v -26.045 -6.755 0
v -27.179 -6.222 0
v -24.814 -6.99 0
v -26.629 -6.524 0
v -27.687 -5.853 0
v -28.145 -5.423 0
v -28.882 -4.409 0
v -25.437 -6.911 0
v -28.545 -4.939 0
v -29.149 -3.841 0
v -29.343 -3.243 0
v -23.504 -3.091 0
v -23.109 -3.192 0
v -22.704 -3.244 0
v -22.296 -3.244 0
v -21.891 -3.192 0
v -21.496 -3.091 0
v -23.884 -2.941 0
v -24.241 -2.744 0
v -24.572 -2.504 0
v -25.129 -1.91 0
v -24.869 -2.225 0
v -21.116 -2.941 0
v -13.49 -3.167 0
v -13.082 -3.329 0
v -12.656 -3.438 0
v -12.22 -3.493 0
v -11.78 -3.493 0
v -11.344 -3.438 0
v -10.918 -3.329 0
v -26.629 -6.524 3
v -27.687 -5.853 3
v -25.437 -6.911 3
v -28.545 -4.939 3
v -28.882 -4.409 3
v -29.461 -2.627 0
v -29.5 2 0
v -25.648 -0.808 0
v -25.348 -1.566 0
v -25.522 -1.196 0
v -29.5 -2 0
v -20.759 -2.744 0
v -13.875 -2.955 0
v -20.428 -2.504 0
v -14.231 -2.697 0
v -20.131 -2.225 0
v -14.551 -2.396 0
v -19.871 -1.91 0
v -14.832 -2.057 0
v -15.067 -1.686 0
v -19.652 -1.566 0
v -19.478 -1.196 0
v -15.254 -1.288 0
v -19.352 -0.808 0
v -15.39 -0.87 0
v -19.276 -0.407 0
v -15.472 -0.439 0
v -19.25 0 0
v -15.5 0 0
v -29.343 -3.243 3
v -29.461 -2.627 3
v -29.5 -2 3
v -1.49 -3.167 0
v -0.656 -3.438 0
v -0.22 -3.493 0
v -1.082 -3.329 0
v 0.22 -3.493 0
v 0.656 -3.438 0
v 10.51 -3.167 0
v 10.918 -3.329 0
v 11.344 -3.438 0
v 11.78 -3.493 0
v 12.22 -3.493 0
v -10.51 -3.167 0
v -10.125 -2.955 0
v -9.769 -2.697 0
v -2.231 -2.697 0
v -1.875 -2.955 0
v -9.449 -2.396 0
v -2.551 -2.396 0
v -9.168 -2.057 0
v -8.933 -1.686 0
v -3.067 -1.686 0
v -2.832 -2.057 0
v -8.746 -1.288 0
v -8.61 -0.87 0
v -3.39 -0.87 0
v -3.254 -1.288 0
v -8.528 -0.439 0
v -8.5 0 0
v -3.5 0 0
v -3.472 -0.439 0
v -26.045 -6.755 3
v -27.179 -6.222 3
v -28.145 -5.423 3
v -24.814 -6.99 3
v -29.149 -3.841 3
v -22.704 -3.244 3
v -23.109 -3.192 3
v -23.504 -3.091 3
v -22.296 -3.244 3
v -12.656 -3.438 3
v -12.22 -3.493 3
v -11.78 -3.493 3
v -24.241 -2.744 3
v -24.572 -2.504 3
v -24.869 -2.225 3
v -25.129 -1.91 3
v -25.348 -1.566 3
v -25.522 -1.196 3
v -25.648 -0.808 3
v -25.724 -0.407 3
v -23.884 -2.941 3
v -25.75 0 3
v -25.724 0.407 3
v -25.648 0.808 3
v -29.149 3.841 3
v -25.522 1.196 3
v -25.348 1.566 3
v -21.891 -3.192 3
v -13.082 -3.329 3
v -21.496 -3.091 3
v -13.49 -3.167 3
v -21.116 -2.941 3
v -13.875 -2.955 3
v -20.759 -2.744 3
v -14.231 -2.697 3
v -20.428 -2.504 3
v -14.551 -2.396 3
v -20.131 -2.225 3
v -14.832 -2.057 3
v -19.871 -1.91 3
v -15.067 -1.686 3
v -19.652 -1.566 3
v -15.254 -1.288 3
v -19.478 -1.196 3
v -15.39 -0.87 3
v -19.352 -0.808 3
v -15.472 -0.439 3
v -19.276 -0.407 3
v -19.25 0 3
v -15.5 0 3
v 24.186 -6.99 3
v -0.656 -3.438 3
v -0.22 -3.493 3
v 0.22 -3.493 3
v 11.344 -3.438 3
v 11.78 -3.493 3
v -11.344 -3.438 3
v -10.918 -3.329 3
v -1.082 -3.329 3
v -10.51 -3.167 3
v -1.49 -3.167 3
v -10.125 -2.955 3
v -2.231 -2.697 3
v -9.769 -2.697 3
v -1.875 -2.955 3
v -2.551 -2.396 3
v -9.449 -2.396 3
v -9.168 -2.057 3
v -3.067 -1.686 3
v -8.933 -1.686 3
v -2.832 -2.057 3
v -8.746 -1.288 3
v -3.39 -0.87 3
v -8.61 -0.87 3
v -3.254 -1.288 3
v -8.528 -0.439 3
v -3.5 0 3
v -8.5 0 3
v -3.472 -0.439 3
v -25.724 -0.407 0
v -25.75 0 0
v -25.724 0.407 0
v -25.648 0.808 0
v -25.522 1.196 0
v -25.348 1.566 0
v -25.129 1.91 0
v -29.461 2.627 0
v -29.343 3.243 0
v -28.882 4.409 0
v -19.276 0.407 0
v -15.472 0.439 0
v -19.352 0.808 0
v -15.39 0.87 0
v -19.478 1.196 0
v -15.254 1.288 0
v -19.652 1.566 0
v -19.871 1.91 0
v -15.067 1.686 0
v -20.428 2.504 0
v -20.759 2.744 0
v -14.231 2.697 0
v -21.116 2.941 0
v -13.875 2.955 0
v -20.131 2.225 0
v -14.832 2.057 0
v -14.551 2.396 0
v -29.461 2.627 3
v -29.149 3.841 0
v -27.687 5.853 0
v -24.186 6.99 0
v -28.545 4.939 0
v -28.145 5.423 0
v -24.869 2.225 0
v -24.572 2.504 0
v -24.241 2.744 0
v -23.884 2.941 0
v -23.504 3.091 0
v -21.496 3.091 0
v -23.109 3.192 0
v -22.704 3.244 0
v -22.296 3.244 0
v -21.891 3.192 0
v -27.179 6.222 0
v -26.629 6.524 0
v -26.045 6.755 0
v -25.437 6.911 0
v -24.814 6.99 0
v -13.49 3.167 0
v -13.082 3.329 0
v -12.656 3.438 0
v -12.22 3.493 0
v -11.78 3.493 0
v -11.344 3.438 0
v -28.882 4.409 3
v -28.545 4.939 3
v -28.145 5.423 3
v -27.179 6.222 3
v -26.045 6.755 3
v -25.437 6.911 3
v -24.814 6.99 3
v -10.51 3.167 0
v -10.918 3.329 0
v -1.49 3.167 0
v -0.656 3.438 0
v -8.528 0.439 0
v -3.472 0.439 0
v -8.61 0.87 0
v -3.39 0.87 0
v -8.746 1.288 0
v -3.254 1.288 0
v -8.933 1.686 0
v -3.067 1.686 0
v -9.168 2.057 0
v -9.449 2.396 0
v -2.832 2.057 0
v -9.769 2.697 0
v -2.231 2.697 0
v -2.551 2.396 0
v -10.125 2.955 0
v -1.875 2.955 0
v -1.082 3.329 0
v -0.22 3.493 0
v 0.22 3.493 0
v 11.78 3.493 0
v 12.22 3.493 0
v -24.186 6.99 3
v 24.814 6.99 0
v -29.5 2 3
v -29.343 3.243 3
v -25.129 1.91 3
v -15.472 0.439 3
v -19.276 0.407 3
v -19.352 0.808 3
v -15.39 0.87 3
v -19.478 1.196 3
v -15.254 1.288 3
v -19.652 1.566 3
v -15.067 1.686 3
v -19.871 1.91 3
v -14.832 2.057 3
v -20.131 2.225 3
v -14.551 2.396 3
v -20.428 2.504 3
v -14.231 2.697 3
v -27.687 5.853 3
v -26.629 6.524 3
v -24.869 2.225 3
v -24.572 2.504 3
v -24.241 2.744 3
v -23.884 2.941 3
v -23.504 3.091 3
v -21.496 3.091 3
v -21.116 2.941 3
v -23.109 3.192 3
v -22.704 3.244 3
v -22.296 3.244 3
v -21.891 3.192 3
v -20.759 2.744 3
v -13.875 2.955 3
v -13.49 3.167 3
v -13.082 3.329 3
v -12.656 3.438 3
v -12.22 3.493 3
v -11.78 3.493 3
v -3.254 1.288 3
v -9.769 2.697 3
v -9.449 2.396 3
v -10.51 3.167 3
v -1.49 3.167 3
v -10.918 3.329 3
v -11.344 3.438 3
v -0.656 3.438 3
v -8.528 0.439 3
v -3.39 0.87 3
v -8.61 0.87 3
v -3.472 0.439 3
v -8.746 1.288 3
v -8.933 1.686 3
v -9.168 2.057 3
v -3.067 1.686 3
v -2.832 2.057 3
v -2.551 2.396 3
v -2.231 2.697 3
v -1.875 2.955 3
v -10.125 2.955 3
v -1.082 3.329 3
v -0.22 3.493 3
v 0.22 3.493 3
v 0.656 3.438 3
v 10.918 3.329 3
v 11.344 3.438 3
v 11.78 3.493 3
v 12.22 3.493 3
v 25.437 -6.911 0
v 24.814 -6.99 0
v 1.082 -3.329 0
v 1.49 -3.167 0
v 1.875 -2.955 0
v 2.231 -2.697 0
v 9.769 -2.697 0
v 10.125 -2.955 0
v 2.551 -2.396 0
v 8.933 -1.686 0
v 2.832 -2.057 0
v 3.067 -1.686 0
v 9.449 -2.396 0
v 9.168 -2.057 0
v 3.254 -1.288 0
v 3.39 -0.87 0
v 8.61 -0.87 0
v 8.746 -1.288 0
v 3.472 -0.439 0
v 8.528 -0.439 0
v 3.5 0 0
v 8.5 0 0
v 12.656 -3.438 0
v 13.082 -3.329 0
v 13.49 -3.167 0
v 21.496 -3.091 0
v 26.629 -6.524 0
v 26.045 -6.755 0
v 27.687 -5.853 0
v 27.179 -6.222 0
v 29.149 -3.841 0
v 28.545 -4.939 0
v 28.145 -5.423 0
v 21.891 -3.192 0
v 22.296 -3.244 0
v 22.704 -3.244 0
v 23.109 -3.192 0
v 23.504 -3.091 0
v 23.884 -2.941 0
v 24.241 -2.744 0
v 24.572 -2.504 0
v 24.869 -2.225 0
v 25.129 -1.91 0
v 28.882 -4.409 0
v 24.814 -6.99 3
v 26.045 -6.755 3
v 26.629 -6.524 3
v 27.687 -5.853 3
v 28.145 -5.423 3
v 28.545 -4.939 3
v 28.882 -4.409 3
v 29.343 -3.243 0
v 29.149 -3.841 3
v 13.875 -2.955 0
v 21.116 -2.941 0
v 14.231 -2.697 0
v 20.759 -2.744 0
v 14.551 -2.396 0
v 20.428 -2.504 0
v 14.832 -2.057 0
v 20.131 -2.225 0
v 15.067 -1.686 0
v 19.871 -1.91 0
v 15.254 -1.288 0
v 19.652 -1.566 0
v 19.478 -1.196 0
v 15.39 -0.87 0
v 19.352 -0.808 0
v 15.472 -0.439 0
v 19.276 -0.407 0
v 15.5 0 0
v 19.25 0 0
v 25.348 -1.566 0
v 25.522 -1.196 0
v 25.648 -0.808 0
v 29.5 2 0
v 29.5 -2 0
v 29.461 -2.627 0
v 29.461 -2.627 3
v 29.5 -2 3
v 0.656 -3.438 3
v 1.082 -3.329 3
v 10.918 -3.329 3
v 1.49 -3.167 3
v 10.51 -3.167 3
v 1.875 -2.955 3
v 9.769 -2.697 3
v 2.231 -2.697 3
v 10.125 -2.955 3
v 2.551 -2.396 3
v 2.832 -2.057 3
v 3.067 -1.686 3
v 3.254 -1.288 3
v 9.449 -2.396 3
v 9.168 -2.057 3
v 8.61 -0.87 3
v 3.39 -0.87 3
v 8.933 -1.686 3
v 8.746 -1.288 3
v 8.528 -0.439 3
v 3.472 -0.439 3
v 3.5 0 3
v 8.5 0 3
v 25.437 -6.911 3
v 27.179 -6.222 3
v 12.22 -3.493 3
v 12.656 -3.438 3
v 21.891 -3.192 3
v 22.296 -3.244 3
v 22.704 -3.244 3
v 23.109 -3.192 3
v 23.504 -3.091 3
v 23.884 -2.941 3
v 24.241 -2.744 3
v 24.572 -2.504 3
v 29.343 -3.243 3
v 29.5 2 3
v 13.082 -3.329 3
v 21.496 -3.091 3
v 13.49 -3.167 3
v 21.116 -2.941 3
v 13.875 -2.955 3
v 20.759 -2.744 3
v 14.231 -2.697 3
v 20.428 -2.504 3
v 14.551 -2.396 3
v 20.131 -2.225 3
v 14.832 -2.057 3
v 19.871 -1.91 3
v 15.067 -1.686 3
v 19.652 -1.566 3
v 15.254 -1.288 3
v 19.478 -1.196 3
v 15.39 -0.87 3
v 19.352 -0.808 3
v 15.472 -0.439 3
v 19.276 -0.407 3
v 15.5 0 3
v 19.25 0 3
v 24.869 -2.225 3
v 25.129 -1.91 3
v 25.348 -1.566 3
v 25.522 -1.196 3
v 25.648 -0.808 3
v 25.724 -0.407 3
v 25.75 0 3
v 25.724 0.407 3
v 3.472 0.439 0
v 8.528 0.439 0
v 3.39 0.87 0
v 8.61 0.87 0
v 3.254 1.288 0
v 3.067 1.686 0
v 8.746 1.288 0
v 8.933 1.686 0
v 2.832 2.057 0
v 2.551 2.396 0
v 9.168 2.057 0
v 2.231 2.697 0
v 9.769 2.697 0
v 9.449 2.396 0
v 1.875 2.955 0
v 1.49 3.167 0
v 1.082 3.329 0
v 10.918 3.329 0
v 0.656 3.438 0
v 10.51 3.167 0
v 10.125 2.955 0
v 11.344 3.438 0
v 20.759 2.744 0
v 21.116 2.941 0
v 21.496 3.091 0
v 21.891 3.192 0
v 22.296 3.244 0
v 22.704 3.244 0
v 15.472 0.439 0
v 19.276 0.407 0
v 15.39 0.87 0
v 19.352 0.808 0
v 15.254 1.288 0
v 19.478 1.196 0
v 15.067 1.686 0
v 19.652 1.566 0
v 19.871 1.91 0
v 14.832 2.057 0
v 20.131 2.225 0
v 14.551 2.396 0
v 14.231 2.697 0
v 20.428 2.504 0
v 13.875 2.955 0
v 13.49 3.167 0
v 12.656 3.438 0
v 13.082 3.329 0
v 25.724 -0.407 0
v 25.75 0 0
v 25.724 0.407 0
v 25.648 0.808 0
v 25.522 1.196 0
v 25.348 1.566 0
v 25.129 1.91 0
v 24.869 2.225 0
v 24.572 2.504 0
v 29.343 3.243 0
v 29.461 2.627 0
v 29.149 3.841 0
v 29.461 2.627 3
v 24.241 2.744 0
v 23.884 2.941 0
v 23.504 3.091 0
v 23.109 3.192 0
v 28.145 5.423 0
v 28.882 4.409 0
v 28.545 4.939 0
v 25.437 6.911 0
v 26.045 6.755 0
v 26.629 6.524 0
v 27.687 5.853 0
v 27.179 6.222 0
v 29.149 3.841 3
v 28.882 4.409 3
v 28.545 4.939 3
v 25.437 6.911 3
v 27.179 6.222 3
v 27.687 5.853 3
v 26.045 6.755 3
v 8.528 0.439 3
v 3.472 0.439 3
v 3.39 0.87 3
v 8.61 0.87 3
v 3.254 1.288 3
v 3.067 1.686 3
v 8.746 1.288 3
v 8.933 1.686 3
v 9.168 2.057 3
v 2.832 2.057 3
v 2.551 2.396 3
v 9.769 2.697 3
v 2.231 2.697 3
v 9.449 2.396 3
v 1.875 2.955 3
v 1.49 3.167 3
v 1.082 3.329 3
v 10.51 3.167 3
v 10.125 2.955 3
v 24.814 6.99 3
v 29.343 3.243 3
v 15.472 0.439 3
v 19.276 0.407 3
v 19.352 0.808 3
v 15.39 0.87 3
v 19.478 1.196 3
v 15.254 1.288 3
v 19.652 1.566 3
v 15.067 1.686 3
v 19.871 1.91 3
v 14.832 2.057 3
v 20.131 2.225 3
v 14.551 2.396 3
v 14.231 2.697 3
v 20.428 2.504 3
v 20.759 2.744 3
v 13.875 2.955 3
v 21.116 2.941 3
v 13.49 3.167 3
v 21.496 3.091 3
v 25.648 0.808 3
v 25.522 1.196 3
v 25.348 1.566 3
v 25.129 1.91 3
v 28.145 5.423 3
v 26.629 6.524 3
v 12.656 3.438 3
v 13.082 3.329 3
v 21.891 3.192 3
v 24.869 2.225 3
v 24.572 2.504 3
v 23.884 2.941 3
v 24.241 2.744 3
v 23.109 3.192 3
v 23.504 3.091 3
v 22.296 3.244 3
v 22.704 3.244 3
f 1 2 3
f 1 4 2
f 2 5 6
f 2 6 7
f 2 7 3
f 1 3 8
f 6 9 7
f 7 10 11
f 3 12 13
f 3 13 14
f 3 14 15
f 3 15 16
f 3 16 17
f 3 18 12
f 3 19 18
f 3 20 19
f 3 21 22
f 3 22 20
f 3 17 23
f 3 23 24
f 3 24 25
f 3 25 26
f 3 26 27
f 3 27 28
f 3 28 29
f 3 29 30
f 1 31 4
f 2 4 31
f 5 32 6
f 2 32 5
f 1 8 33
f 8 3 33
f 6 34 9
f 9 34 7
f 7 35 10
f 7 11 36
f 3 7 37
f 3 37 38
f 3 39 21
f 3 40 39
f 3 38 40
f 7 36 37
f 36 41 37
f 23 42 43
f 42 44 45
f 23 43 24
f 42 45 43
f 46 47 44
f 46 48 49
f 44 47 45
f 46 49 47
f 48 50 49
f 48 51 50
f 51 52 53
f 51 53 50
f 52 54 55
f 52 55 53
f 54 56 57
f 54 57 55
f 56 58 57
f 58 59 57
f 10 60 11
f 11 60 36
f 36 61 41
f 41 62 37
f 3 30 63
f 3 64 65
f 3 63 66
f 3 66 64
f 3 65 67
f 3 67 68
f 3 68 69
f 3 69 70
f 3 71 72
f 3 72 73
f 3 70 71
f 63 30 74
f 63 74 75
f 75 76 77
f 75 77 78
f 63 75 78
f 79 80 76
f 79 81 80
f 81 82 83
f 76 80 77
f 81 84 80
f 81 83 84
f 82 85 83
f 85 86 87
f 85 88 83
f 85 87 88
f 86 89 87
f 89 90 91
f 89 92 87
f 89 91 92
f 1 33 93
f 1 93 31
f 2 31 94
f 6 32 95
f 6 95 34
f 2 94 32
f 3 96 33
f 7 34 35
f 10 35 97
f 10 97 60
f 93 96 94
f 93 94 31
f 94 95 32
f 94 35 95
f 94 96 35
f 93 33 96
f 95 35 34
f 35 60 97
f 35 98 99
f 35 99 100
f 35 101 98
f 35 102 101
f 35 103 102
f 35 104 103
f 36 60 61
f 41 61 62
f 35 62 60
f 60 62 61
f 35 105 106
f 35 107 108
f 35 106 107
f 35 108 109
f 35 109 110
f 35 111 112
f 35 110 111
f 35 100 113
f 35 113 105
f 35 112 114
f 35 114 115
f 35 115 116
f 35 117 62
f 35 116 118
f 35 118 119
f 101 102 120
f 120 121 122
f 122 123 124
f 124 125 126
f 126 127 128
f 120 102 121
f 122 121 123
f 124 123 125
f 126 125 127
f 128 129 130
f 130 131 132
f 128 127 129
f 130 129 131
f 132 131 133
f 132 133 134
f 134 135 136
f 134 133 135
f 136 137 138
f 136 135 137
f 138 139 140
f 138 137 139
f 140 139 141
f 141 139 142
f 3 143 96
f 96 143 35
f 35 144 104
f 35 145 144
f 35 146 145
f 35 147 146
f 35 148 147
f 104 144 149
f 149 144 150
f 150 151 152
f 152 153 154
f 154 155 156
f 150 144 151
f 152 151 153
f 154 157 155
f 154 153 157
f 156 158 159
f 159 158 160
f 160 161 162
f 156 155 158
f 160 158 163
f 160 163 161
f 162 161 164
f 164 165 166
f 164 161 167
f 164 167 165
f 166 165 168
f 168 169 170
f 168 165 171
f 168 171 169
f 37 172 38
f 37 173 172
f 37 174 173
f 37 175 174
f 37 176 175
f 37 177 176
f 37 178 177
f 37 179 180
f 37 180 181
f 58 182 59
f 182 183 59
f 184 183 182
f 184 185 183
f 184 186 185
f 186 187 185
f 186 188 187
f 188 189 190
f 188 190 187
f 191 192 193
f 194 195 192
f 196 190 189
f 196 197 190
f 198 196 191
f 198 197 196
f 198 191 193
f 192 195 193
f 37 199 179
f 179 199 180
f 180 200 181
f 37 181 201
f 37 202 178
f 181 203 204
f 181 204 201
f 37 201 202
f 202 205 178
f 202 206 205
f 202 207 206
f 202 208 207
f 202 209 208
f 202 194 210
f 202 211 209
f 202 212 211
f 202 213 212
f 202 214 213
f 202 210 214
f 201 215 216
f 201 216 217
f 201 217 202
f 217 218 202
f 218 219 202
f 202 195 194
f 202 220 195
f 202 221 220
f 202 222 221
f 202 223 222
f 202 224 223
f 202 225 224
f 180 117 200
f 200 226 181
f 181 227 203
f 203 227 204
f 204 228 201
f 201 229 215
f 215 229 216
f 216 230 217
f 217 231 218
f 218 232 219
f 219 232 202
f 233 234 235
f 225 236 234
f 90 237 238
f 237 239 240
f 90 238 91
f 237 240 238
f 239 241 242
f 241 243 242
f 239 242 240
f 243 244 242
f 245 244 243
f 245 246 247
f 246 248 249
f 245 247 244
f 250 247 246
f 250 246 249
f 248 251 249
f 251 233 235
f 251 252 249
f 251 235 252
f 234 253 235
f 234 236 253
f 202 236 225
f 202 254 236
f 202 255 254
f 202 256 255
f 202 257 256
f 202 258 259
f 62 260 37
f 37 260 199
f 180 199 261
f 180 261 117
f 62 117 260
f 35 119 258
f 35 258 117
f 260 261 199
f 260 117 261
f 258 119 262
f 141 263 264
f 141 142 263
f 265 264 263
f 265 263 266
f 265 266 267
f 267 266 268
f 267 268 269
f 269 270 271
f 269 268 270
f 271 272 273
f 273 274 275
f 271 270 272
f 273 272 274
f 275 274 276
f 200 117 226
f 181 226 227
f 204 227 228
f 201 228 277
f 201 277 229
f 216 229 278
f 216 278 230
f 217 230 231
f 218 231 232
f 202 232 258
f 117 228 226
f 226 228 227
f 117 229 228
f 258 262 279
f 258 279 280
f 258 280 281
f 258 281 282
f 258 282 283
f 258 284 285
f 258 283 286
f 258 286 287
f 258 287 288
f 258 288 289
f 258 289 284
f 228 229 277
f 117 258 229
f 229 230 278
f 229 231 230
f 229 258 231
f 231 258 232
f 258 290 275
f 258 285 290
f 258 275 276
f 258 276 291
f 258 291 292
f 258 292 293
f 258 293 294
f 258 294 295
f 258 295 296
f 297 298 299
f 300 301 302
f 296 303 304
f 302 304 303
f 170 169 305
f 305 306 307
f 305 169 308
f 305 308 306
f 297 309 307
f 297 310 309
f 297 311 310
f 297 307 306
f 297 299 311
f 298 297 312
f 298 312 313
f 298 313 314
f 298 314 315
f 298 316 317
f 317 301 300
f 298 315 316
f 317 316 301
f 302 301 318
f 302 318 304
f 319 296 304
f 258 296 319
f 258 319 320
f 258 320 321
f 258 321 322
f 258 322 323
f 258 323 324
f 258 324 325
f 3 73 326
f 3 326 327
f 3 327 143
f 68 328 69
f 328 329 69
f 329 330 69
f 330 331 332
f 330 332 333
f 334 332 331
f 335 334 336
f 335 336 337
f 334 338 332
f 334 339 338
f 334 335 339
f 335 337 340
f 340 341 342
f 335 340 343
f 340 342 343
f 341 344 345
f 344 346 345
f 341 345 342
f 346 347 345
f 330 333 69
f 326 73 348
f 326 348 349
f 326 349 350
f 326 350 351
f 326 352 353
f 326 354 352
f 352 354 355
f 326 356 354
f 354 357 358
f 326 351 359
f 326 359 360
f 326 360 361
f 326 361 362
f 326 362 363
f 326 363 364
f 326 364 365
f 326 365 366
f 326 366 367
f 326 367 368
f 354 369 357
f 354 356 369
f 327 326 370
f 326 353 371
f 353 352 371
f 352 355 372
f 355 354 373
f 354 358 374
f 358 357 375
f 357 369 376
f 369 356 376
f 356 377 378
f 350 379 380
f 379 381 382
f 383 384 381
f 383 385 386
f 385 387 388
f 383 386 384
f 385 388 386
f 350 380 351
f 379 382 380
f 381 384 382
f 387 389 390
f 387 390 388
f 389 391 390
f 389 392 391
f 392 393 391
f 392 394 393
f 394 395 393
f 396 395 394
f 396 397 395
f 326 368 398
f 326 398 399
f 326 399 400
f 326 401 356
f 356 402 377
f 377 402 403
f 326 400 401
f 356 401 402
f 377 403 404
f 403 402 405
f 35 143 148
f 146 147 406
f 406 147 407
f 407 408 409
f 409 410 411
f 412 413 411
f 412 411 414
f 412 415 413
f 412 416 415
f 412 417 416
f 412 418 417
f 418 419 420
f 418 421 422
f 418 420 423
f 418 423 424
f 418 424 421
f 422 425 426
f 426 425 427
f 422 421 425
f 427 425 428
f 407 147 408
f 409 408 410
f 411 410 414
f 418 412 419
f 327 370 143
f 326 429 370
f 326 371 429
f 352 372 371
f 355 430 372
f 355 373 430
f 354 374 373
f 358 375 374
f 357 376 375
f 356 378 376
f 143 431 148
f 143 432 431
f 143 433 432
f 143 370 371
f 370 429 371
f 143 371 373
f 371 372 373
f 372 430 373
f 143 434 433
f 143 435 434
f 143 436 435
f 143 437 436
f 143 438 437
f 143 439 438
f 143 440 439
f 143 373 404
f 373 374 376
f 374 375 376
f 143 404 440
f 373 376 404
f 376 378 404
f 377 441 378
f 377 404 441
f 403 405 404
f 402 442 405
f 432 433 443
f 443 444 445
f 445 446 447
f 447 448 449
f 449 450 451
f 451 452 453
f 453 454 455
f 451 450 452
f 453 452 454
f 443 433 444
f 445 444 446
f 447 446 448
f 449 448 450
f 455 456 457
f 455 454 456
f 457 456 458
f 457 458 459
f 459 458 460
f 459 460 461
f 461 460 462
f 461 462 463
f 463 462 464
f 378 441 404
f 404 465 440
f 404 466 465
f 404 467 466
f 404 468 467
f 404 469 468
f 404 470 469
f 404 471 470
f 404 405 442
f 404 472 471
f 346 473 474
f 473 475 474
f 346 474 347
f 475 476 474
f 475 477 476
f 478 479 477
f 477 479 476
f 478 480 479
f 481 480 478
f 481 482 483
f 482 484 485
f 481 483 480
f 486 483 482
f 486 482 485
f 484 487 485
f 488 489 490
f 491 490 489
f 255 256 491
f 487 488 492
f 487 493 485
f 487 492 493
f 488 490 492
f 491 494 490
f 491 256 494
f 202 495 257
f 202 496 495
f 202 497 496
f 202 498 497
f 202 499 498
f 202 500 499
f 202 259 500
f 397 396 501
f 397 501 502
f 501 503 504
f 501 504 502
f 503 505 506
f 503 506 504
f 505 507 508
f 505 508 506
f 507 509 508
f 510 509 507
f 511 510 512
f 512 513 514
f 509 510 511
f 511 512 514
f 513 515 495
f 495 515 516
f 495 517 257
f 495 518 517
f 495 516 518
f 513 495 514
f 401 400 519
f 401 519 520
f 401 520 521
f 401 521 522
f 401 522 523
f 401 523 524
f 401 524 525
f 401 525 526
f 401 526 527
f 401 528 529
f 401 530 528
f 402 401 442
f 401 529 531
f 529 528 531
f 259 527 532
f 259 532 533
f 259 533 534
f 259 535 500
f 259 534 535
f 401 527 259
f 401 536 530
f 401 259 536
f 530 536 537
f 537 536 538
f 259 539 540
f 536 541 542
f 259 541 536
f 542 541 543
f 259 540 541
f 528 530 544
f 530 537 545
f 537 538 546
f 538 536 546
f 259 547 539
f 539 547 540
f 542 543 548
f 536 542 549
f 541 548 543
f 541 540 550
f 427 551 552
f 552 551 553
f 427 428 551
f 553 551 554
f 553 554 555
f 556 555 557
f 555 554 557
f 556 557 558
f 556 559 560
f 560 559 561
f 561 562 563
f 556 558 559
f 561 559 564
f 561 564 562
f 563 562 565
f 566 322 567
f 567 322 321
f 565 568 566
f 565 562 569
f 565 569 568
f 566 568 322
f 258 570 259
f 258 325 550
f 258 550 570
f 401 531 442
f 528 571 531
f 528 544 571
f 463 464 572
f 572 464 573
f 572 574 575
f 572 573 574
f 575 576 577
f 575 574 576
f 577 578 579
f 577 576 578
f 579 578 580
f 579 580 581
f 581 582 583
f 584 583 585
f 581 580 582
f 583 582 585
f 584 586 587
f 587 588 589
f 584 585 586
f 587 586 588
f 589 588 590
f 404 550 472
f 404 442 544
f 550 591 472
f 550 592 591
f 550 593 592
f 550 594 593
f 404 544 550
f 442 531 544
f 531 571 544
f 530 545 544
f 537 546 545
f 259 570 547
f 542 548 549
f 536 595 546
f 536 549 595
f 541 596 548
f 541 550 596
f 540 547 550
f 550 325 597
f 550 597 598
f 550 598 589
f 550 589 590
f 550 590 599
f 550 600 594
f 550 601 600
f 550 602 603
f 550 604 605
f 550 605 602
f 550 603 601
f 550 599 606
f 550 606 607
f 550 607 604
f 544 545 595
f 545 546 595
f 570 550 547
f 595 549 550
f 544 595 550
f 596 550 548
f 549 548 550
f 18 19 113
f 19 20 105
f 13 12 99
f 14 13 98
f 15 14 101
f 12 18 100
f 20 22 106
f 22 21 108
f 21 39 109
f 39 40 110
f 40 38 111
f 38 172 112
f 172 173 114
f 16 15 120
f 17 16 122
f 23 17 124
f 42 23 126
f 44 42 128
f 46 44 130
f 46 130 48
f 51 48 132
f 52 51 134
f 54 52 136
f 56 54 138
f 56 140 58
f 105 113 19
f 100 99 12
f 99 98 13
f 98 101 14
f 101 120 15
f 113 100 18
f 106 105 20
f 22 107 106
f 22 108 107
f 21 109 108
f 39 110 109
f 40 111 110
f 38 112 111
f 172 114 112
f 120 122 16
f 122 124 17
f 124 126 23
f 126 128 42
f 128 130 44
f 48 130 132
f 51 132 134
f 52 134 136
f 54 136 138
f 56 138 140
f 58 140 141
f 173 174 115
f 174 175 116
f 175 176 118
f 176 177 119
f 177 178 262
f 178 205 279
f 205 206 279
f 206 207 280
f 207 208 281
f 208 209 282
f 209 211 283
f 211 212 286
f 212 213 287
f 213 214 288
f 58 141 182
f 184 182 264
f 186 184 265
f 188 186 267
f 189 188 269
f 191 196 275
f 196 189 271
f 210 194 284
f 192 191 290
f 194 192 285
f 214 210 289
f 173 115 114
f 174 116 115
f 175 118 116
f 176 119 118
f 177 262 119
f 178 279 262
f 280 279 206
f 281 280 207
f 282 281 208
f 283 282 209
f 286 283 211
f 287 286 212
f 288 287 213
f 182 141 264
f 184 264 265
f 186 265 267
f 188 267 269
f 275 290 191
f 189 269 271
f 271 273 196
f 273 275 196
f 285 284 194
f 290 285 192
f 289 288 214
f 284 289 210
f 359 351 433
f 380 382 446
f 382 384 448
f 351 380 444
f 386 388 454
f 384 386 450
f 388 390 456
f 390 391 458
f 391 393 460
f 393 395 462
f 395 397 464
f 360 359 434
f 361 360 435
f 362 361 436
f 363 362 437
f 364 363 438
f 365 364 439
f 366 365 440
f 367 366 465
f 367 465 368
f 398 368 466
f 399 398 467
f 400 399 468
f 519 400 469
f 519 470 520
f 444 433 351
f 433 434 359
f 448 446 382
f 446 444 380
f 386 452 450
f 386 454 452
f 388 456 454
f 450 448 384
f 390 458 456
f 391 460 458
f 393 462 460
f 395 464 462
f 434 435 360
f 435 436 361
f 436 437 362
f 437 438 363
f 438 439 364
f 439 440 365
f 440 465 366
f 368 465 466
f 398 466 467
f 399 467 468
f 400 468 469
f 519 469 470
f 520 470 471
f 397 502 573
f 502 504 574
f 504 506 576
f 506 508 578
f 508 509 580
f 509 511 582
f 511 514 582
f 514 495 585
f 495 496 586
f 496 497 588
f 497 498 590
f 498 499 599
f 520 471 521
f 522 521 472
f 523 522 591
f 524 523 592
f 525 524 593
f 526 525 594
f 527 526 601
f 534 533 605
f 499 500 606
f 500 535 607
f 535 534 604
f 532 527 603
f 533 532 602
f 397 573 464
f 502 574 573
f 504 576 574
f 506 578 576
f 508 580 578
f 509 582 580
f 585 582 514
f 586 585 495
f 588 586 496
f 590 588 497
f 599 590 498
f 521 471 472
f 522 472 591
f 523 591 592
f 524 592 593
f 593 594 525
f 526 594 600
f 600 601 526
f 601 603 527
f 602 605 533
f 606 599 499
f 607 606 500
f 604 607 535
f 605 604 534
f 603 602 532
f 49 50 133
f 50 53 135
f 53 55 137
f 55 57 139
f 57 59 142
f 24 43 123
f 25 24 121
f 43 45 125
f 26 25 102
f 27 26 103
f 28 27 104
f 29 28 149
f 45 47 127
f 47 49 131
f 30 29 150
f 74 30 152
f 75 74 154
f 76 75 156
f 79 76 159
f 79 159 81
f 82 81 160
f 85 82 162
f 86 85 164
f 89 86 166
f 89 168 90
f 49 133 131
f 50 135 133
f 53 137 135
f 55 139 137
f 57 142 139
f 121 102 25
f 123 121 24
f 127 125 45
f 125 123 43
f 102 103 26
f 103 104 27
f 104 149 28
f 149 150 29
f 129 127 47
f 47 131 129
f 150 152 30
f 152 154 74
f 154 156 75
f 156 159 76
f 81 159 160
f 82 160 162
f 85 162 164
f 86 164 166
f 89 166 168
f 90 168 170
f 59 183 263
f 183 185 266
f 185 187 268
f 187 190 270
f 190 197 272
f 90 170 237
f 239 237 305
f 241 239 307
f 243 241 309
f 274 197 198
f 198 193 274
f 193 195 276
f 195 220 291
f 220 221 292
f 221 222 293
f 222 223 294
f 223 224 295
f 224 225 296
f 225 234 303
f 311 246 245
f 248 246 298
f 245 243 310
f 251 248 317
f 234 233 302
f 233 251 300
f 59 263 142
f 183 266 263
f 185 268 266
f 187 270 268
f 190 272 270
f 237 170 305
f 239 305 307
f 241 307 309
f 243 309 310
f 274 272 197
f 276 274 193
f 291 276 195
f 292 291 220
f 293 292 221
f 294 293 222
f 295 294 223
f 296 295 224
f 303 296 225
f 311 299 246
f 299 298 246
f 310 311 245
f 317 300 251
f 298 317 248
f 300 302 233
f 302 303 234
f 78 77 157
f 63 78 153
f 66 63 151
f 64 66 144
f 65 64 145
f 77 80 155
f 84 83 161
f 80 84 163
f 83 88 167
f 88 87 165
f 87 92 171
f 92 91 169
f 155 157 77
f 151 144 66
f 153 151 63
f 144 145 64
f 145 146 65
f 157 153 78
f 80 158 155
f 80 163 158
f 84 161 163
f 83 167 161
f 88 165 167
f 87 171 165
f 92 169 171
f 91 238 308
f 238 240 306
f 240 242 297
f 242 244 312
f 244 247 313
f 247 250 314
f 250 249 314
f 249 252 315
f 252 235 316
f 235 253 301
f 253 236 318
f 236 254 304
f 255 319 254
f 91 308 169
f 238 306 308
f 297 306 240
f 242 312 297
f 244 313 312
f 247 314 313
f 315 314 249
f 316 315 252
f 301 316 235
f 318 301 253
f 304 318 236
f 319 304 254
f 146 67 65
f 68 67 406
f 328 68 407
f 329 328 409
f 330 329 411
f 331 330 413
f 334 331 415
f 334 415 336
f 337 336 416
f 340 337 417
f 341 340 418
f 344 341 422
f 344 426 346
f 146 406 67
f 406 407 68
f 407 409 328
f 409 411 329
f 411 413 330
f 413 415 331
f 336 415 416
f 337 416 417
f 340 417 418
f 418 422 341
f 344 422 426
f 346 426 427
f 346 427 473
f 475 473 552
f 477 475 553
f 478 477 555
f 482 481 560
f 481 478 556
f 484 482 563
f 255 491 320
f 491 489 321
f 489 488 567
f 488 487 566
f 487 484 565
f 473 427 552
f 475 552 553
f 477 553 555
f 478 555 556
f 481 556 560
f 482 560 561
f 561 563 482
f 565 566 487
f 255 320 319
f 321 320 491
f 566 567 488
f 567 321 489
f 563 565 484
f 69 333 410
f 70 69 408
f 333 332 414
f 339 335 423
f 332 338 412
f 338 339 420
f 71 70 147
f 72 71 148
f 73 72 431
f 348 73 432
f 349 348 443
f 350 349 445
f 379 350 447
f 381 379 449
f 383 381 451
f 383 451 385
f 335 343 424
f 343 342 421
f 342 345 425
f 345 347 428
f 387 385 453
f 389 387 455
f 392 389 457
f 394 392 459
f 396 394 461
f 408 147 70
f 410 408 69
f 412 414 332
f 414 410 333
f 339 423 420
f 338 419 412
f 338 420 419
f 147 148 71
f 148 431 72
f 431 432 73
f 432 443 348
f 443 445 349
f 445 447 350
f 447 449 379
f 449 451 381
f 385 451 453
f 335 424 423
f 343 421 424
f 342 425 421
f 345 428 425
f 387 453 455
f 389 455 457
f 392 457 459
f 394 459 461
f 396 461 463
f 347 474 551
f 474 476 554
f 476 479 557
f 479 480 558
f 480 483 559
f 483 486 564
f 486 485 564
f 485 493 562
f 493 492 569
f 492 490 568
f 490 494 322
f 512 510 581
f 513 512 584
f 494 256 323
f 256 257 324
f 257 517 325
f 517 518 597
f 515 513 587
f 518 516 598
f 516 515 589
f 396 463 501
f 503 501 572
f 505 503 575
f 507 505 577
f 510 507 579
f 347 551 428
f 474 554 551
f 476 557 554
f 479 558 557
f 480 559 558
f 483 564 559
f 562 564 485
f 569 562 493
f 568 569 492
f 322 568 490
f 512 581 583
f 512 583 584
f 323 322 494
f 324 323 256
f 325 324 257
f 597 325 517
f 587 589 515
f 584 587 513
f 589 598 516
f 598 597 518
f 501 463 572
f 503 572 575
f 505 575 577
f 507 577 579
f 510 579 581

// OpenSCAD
$fn = 50;

difference() {
	union() {
		hull() {
			translate(v = [-24.5, 2.0, 0]) {
				cylinder(h = 3, r = 5);
			}
			translate(v = [24.5, 2.0, 0]) {
				cylinder(h = 3, r = 5);
			}
			translate(v = [-24.5, -2.0, 0]) {
				cylinder(h = 3, r = 5);
			}
			translate(v = [24.5, -2.0, 0]) {
				cylinder(h = 3, r = 5);
			}
		}
	}
	union() {
		translate(v = [-22.5, 0.0, 0]) {
			cylinder(h = 3, r = 3.25);
		}
		translate(v = [22.5, 0.0, 0]) {
			cylinder(h = 3, r = 3.25);
		}
		translate(v = [-12.0, 0, 0.0]) {
			cylinder(h = 3, r = 3.5);
		}
		cylinder(h = 3, r = 3.5);
		translate(v = [12.0, 0, 0.0]) {
			cylinder(h = 3, r = 3.5);
		}
	}
}
